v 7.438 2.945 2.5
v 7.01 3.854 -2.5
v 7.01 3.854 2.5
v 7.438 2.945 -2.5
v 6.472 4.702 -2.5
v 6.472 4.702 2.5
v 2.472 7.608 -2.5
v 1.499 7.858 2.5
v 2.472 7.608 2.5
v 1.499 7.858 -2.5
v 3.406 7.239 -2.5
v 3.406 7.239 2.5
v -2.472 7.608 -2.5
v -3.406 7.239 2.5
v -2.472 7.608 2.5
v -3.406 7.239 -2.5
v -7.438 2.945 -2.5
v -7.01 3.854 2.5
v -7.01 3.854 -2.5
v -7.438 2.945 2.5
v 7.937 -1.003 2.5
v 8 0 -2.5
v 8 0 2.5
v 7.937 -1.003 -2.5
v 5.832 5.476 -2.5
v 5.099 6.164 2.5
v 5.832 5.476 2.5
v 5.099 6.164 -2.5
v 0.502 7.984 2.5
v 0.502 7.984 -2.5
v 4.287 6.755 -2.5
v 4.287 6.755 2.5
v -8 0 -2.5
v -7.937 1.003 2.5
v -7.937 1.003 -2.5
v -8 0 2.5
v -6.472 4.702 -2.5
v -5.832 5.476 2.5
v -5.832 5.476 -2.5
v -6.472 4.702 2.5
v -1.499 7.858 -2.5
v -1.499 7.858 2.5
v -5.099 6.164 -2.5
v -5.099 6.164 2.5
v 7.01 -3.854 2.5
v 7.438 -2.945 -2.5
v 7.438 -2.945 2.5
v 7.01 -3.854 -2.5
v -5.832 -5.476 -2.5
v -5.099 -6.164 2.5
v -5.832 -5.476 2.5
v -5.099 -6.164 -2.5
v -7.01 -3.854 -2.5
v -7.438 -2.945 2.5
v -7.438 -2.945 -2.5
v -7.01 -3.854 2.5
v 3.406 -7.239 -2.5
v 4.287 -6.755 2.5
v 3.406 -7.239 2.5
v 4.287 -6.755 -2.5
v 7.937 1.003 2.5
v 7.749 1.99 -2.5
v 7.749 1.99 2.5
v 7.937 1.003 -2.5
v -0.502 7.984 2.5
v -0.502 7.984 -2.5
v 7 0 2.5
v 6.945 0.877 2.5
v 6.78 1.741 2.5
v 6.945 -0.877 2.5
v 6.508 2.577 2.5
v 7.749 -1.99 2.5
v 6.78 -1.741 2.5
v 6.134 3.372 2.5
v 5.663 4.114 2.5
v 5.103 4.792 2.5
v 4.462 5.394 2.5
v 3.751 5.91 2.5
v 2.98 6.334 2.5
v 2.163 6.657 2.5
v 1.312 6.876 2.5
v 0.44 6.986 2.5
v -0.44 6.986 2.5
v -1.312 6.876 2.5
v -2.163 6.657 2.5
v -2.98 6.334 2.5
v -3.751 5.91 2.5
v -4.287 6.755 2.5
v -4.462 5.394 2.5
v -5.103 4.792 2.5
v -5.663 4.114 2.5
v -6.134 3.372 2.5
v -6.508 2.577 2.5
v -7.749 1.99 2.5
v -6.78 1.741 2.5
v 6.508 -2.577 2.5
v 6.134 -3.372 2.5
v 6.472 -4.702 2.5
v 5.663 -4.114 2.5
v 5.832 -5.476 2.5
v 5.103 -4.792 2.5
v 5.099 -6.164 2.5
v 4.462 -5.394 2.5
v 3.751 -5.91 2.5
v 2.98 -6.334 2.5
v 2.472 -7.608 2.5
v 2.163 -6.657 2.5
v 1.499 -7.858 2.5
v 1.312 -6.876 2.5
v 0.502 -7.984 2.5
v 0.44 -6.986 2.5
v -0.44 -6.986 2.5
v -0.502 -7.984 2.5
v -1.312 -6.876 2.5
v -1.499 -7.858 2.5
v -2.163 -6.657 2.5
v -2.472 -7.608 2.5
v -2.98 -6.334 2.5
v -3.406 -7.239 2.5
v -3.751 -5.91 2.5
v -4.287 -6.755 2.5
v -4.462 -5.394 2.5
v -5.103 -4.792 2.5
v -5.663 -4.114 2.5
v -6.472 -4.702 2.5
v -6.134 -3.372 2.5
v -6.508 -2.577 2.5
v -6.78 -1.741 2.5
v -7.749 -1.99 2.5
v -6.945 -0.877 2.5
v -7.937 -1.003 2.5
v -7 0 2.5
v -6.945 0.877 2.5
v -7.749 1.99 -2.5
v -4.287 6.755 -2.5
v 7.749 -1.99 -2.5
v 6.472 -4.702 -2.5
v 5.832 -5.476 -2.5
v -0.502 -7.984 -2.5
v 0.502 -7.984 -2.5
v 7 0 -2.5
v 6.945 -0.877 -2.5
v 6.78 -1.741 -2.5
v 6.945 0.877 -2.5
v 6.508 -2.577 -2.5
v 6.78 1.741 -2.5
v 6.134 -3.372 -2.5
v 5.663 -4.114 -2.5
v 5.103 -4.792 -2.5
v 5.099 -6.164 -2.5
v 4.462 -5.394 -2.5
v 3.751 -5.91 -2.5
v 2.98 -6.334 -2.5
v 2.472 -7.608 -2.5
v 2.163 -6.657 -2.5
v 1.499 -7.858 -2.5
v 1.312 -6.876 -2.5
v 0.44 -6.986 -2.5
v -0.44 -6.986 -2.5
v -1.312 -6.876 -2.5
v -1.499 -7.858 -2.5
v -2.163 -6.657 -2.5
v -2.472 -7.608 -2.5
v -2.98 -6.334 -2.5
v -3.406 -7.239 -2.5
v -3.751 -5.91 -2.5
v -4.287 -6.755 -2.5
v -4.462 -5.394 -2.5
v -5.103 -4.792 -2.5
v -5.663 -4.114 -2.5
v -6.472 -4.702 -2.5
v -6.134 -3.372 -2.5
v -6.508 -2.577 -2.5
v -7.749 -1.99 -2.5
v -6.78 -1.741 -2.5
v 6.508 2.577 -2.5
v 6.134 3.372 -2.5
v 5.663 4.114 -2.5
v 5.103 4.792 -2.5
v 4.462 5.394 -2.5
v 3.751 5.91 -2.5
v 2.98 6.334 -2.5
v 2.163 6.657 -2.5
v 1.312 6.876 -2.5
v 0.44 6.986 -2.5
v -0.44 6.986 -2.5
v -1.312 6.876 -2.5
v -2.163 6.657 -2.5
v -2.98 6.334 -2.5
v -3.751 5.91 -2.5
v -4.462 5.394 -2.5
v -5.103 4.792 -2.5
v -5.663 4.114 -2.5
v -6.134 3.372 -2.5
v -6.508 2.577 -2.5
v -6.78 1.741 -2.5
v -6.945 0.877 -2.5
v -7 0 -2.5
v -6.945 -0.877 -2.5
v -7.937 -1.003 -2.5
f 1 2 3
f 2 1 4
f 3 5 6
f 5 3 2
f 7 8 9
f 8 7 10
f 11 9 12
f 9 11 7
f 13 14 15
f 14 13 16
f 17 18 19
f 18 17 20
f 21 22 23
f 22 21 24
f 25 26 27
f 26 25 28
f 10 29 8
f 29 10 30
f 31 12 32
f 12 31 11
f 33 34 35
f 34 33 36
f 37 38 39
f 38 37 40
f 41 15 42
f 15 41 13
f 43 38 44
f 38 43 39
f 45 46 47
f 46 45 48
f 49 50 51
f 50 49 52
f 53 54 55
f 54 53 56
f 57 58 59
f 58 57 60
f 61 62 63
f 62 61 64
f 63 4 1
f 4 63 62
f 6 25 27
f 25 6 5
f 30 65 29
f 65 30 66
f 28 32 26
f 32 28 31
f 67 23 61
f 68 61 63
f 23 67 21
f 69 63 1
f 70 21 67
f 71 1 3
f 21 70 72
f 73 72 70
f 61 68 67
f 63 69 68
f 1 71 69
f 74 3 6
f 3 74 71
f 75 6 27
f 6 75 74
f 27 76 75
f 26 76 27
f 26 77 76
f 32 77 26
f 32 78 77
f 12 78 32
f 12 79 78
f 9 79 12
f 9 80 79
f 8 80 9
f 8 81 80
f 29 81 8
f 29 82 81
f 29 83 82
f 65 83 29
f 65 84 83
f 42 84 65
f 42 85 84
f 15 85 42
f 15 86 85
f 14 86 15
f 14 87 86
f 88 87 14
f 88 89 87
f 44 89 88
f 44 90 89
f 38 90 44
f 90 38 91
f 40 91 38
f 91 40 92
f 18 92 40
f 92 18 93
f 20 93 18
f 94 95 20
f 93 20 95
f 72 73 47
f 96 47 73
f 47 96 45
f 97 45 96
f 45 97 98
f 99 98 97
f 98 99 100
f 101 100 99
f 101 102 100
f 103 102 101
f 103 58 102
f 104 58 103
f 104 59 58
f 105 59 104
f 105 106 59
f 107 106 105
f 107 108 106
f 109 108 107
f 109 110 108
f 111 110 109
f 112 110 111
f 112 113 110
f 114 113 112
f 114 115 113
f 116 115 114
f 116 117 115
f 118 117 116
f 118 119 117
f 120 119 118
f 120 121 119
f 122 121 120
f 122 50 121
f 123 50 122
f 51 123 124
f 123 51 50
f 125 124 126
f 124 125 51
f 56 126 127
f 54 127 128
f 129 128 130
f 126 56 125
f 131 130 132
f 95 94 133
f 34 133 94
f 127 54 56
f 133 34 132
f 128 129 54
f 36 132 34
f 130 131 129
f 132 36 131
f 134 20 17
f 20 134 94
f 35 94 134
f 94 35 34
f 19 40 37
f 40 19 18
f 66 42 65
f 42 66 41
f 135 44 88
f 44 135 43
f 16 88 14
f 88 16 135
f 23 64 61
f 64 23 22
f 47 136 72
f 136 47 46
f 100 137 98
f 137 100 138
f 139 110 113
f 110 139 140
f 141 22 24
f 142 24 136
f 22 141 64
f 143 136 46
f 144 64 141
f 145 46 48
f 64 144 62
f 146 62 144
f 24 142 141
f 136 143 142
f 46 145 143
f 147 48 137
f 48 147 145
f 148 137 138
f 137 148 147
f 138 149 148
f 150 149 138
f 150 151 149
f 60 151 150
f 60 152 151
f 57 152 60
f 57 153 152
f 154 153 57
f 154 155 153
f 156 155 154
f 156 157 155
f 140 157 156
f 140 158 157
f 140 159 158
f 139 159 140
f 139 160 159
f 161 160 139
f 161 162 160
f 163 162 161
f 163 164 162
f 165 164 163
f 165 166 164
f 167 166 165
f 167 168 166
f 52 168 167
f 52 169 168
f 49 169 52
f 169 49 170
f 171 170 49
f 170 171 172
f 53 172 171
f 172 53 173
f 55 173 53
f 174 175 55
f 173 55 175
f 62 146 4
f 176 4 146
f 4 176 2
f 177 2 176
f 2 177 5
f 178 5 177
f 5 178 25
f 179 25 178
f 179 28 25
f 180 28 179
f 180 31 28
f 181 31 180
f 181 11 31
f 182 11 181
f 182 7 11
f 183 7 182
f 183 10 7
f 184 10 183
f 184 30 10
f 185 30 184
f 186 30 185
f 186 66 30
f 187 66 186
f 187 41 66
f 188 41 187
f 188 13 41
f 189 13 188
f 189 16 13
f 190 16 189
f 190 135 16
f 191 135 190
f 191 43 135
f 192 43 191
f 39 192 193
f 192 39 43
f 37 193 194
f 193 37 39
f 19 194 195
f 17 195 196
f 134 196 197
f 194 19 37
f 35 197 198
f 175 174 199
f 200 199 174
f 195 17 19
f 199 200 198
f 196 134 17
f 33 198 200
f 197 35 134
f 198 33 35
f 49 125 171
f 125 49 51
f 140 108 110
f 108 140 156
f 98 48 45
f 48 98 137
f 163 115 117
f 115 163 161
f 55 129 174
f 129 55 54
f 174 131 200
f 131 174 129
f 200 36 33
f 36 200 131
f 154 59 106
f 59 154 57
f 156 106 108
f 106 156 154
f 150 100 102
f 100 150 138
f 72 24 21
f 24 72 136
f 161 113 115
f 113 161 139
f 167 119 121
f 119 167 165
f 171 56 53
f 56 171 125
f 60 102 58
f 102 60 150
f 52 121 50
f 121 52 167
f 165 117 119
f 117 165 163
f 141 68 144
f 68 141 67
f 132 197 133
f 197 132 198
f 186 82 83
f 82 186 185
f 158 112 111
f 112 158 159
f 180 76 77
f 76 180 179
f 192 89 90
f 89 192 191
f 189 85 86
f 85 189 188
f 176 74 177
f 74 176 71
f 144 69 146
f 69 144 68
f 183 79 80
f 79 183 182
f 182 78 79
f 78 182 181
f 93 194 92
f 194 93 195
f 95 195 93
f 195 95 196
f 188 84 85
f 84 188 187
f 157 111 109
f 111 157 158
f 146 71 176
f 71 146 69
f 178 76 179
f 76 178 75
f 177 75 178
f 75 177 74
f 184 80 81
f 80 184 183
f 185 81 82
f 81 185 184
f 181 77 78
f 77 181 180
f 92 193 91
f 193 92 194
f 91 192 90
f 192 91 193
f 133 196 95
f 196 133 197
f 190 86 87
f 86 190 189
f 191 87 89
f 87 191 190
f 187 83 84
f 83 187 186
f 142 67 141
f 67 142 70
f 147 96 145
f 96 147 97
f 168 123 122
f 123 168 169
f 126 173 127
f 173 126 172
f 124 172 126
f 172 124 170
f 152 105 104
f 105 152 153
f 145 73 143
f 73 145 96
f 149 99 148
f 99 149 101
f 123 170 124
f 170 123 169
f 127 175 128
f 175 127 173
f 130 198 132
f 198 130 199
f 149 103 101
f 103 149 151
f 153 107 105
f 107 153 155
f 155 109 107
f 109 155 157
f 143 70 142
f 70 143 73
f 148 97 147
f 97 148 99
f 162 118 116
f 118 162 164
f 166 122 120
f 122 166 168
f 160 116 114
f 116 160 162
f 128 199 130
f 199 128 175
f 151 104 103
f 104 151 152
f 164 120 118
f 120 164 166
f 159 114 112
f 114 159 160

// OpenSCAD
$fn = 50;


difference() {
	union() {
		translate(v = [0, 0, -2.5000000000]) {
			cylinder(h = 5, r = 8.0000000000);
		}
	}
	union() {
		translate(v = [0, 0, -100.0000000000]) {
			cylinder(h = 200, r = 7);
		}
	}
}
